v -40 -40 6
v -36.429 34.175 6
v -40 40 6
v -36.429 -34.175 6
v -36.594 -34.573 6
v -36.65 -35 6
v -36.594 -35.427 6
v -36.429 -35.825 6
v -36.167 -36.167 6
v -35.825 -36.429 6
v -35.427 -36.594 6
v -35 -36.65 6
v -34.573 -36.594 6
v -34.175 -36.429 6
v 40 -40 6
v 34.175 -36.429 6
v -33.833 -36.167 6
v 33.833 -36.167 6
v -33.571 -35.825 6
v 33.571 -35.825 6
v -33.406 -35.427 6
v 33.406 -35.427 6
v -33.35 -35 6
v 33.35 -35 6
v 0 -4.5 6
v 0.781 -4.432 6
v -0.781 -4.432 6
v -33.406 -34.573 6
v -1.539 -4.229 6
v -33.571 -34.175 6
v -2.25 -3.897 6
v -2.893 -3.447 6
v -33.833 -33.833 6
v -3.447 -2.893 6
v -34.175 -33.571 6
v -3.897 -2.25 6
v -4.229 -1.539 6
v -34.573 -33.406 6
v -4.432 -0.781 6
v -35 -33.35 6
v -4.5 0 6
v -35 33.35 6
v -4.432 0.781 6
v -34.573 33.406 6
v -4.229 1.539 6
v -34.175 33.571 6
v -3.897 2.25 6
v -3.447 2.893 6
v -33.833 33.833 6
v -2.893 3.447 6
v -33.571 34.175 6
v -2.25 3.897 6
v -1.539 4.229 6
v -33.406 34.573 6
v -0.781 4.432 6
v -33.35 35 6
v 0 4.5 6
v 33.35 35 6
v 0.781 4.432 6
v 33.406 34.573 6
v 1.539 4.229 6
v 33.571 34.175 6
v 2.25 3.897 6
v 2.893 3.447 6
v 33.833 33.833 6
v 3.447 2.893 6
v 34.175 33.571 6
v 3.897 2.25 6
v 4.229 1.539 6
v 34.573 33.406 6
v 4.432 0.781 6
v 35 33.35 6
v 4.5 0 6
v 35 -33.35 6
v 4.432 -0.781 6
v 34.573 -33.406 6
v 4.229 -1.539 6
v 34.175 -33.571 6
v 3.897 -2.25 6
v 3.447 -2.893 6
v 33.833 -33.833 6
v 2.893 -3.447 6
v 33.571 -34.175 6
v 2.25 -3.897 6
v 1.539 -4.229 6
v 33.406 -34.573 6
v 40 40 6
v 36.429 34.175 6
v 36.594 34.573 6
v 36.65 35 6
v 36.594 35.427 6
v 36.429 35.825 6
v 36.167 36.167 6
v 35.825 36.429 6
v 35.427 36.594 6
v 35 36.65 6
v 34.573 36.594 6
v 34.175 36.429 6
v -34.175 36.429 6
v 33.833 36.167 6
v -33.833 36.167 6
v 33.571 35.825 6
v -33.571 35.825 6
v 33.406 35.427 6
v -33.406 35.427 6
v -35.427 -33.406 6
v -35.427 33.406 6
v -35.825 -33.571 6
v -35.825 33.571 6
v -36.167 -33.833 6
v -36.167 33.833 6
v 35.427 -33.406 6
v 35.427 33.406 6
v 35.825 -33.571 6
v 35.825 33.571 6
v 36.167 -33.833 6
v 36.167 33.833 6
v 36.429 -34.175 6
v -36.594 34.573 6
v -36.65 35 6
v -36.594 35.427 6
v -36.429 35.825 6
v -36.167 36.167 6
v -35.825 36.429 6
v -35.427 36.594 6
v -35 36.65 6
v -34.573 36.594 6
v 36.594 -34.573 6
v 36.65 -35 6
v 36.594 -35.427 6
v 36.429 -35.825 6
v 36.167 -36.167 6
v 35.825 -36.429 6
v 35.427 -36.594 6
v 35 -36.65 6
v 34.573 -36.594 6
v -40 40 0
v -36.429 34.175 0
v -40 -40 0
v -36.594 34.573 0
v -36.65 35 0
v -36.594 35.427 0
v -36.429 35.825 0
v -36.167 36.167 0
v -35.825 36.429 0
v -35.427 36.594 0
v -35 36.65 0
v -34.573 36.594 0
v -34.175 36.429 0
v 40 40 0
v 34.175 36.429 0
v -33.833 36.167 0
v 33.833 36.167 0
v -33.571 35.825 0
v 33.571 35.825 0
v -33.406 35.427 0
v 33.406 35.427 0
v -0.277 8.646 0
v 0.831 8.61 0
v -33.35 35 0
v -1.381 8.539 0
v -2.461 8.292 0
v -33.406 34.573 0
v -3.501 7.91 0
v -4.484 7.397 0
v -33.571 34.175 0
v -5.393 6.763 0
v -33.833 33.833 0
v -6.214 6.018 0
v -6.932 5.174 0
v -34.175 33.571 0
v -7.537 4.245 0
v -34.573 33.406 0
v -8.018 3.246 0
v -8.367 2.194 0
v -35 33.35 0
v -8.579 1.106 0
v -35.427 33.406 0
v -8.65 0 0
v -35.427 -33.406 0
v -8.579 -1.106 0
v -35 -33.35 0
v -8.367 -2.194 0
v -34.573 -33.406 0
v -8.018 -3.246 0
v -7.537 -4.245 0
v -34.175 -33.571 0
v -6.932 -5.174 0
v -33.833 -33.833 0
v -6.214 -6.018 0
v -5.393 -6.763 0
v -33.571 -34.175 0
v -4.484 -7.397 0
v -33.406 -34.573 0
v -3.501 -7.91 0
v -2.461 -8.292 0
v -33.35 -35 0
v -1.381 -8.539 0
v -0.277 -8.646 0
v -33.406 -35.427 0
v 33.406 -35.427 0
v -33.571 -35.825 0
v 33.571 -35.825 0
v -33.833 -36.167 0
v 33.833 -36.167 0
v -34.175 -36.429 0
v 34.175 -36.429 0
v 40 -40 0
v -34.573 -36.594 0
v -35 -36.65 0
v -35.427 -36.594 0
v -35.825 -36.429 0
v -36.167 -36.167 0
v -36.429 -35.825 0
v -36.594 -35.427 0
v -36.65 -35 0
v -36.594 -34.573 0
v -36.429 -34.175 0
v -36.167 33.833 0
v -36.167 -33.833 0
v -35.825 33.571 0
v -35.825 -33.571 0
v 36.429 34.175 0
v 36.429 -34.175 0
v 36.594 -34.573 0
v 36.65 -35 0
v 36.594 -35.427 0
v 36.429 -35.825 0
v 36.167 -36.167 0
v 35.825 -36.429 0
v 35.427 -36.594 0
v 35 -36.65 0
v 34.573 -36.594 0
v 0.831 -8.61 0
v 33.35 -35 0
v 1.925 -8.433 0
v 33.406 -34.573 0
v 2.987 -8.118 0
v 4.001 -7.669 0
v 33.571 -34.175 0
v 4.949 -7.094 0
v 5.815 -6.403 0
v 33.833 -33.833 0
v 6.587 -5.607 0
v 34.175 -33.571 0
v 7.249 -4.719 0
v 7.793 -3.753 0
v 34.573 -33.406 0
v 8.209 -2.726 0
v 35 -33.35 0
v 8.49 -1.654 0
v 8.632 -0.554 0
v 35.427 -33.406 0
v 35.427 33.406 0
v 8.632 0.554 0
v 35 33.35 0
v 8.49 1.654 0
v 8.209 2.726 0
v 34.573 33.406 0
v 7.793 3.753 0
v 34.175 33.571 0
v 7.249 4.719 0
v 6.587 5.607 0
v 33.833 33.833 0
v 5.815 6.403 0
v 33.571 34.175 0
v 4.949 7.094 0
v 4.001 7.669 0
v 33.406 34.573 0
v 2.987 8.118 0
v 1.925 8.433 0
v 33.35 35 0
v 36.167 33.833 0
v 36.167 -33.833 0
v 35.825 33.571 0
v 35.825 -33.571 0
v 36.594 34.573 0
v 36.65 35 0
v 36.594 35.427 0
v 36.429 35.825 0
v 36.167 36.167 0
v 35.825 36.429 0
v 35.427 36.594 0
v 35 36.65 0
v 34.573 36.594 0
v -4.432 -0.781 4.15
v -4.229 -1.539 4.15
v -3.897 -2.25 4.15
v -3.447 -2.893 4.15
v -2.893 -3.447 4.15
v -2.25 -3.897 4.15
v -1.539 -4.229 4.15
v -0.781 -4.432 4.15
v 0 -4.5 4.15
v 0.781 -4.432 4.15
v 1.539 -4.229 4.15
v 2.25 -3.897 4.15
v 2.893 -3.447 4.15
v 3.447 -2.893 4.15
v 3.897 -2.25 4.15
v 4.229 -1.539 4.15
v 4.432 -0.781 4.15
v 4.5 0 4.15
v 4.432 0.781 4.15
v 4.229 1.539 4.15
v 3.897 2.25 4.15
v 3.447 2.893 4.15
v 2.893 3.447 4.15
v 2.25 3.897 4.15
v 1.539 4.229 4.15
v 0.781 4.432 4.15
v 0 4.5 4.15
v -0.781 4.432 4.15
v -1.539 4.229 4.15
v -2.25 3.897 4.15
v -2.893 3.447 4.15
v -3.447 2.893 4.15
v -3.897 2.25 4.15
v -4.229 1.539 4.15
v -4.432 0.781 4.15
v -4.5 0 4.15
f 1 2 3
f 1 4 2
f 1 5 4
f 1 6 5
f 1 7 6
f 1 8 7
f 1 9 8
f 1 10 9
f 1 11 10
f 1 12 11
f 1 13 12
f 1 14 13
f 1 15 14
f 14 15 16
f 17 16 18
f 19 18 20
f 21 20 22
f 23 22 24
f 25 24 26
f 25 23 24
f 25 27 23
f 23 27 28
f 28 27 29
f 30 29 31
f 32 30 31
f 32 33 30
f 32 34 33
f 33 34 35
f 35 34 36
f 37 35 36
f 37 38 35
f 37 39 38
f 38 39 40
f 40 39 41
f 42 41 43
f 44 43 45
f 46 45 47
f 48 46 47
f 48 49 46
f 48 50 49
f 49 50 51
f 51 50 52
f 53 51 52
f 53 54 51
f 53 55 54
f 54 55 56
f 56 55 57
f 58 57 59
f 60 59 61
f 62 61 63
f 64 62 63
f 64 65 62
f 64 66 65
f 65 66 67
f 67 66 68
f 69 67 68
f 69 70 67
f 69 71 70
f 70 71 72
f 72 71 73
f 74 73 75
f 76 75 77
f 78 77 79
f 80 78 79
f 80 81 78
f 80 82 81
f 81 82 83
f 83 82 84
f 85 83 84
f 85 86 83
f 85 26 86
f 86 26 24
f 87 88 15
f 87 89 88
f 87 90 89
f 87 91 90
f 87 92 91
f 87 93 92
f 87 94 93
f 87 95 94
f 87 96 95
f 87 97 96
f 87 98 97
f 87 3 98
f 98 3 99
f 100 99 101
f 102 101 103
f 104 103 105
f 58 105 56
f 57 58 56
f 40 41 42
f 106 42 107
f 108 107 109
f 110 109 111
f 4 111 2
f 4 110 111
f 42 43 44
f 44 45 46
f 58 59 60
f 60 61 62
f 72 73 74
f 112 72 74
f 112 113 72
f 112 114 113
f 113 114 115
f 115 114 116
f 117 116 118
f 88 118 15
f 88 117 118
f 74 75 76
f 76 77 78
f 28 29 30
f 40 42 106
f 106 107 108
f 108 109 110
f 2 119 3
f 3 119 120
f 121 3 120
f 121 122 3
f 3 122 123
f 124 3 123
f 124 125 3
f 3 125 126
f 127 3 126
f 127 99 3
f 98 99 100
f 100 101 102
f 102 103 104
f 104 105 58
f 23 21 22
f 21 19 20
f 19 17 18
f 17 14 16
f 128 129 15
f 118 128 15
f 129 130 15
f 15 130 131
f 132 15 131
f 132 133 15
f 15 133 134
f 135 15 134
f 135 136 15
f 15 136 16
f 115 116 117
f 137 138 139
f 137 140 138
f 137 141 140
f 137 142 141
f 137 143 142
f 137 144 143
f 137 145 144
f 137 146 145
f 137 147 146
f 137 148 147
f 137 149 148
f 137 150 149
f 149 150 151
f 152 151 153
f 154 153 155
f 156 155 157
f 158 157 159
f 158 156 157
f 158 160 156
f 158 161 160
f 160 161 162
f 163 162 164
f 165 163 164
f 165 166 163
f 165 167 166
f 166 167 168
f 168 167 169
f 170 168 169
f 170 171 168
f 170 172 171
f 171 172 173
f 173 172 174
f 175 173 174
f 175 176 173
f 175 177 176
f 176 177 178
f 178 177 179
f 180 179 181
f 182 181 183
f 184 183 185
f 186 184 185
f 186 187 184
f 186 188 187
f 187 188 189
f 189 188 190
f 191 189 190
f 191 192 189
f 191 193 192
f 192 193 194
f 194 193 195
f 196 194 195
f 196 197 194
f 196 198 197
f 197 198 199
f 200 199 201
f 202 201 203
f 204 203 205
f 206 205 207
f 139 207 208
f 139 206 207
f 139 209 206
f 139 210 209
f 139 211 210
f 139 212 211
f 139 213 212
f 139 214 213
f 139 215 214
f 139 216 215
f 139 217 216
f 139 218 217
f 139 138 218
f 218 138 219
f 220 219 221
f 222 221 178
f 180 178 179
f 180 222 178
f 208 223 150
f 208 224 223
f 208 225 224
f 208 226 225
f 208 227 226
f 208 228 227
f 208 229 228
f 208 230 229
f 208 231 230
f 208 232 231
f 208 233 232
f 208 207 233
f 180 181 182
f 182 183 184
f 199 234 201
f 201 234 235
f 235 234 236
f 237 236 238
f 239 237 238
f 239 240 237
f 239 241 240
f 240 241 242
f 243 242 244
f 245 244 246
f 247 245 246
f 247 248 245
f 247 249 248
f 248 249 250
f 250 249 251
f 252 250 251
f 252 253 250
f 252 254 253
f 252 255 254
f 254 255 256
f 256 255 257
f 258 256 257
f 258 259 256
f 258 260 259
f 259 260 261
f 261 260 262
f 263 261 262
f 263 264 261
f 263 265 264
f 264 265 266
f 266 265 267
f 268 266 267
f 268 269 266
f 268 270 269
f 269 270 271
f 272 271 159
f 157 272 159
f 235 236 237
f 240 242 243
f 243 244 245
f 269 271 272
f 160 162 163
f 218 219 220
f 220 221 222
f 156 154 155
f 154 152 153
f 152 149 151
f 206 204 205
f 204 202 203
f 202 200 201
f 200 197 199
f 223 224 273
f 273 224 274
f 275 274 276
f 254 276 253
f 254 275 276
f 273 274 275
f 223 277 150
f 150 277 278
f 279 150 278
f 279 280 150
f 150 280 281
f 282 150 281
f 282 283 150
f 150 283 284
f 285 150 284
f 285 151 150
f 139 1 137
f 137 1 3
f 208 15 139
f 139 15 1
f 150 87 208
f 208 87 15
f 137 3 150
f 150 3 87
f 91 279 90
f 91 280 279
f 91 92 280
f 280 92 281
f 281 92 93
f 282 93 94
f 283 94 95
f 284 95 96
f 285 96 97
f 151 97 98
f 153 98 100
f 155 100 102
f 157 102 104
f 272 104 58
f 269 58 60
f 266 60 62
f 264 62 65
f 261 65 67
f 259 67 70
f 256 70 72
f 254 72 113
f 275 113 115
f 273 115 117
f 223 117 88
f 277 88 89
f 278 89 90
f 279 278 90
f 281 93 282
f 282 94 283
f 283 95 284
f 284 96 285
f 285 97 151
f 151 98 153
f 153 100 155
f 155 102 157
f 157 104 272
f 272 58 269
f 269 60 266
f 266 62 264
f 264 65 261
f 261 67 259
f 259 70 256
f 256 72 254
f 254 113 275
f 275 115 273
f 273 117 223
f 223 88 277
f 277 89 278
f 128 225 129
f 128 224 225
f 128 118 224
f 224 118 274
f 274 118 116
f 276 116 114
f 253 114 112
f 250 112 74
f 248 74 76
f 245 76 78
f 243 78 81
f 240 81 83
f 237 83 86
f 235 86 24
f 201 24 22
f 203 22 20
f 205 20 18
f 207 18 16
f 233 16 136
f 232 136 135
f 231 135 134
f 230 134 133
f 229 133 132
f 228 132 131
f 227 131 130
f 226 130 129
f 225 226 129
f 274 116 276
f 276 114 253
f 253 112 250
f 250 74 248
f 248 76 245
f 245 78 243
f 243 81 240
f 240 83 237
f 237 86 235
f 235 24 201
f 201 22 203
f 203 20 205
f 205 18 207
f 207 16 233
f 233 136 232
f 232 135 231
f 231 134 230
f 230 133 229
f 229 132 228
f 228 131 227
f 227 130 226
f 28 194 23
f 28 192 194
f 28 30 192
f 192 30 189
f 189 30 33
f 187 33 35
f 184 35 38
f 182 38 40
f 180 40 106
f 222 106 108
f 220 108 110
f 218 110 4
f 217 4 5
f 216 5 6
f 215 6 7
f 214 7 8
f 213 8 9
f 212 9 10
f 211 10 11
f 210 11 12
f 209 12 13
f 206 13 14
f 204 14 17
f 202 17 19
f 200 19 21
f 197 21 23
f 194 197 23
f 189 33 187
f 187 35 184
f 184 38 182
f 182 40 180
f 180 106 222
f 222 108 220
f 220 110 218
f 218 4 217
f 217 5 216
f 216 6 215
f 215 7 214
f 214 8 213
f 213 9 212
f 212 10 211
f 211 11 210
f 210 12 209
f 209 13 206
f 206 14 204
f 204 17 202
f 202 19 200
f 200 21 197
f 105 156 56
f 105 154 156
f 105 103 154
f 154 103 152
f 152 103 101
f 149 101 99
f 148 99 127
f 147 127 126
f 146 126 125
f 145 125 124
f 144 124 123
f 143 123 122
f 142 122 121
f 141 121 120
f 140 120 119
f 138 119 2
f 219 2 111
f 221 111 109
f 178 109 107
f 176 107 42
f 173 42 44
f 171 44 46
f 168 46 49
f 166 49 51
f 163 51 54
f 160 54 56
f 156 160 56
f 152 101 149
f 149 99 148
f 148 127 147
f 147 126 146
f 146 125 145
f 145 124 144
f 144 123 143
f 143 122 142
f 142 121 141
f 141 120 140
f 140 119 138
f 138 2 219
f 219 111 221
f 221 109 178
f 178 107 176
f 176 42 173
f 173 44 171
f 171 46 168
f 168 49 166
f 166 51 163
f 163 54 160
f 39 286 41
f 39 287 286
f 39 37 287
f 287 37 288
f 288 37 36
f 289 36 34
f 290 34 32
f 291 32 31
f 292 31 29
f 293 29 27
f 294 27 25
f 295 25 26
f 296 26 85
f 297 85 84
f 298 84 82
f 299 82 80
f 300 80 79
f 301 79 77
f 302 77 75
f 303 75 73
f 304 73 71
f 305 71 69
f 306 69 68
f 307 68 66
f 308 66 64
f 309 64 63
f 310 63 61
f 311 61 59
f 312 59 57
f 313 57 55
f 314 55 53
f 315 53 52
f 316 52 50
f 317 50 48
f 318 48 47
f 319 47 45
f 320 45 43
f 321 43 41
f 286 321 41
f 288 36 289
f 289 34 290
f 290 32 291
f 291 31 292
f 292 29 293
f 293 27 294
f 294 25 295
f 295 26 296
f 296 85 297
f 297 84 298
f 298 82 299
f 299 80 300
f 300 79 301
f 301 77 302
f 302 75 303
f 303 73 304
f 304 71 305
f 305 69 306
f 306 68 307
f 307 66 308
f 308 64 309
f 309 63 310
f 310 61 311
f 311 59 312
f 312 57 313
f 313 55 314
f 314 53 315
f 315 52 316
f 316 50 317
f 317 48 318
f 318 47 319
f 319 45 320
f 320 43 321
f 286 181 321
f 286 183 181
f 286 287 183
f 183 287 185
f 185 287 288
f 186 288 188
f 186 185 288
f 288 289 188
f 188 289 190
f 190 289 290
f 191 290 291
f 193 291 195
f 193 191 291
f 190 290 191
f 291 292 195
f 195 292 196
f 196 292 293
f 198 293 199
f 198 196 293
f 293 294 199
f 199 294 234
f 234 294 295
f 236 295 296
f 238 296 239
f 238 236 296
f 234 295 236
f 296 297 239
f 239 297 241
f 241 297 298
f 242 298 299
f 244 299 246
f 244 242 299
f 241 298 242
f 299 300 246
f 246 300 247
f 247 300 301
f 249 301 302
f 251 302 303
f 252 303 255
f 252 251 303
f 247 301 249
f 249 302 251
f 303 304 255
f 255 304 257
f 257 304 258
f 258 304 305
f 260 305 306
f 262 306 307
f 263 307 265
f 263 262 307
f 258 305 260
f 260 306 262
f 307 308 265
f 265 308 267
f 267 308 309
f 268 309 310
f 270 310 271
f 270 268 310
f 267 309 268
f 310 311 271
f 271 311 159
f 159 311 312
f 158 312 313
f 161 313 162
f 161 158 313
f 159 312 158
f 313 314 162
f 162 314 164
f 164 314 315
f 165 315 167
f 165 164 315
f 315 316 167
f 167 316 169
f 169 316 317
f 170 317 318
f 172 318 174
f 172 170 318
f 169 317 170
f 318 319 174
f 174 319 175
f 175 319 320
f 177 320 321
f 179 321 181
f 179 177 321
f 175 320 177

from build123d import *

# Parameters (mm, degrees)
SKIZZE1_W                       = 80
SKIZZE1_H                       = 80
SKIZZE1_R                       = 2.5
AUFSATZ_LINEAR_AUSTRAGEN1_DEPTH = 6
M4_GEWINDEBOHRUNG2_D            = 3.3
M4_GEWINDEBOHRUNG2_DEPTH        = 11.5
M4_GEWINDEBOHRUNG2_TIP          = 0.991420021


with BuildPart() as part:
    # Skizze1 → Aufsatz-Linear austragen1 (new body)
    with BuildSketch(Plane.XY):
        Rectangle(SKIZZE1_W, SKIZZE1_H)
        Circle(SKIZZE1_R, mode=Mode.SUBTRACT)
    extrude(amount=AUFSATZ_LINEAR_AUSTRAGEN1_DEPTH)

    # M4 Gewindebohrung2
    with Locations(Plane(origin=(0, 0, 0), x_dir=(-1, 0, 0), z_dir=(0, 0, -1))):
        with Locations((35, 35), (35, -35), (-35, -35), (-35, 35)):
            Hole(M4_GEWINDEBOHRUNG2_D / 2, depth=M4_GEWINDEBOHRUNG2_DEPTH)
            with Locations((0, 0, -(M4_GEWINDEBOHRUNG2_DEPTH + M4_GEWINDEBOHRUNG2_TIP / 2))):  # 118° drill point
                Cone(0, M4_GEWINDEBOHRUNG2_D / 2, M4_GEWINDEBOHRUNG2_TIP, mode=Mode.SUBTRACT)

    # Skizze8 → Formsenkung für M8 Linsensenkschraube1 (revolve, cut)
    with BuildSketch(Plane.YZ):
        Polygon((0, 0), (0, 6), (4.5, 6), (4.5, 4.15), (8.65, 0), align=None)
    revolve(axis=Axis((0, 0, -6.35), (0, 0, 1)), mode=Mode.SUBTRACT)


solid = part.part
